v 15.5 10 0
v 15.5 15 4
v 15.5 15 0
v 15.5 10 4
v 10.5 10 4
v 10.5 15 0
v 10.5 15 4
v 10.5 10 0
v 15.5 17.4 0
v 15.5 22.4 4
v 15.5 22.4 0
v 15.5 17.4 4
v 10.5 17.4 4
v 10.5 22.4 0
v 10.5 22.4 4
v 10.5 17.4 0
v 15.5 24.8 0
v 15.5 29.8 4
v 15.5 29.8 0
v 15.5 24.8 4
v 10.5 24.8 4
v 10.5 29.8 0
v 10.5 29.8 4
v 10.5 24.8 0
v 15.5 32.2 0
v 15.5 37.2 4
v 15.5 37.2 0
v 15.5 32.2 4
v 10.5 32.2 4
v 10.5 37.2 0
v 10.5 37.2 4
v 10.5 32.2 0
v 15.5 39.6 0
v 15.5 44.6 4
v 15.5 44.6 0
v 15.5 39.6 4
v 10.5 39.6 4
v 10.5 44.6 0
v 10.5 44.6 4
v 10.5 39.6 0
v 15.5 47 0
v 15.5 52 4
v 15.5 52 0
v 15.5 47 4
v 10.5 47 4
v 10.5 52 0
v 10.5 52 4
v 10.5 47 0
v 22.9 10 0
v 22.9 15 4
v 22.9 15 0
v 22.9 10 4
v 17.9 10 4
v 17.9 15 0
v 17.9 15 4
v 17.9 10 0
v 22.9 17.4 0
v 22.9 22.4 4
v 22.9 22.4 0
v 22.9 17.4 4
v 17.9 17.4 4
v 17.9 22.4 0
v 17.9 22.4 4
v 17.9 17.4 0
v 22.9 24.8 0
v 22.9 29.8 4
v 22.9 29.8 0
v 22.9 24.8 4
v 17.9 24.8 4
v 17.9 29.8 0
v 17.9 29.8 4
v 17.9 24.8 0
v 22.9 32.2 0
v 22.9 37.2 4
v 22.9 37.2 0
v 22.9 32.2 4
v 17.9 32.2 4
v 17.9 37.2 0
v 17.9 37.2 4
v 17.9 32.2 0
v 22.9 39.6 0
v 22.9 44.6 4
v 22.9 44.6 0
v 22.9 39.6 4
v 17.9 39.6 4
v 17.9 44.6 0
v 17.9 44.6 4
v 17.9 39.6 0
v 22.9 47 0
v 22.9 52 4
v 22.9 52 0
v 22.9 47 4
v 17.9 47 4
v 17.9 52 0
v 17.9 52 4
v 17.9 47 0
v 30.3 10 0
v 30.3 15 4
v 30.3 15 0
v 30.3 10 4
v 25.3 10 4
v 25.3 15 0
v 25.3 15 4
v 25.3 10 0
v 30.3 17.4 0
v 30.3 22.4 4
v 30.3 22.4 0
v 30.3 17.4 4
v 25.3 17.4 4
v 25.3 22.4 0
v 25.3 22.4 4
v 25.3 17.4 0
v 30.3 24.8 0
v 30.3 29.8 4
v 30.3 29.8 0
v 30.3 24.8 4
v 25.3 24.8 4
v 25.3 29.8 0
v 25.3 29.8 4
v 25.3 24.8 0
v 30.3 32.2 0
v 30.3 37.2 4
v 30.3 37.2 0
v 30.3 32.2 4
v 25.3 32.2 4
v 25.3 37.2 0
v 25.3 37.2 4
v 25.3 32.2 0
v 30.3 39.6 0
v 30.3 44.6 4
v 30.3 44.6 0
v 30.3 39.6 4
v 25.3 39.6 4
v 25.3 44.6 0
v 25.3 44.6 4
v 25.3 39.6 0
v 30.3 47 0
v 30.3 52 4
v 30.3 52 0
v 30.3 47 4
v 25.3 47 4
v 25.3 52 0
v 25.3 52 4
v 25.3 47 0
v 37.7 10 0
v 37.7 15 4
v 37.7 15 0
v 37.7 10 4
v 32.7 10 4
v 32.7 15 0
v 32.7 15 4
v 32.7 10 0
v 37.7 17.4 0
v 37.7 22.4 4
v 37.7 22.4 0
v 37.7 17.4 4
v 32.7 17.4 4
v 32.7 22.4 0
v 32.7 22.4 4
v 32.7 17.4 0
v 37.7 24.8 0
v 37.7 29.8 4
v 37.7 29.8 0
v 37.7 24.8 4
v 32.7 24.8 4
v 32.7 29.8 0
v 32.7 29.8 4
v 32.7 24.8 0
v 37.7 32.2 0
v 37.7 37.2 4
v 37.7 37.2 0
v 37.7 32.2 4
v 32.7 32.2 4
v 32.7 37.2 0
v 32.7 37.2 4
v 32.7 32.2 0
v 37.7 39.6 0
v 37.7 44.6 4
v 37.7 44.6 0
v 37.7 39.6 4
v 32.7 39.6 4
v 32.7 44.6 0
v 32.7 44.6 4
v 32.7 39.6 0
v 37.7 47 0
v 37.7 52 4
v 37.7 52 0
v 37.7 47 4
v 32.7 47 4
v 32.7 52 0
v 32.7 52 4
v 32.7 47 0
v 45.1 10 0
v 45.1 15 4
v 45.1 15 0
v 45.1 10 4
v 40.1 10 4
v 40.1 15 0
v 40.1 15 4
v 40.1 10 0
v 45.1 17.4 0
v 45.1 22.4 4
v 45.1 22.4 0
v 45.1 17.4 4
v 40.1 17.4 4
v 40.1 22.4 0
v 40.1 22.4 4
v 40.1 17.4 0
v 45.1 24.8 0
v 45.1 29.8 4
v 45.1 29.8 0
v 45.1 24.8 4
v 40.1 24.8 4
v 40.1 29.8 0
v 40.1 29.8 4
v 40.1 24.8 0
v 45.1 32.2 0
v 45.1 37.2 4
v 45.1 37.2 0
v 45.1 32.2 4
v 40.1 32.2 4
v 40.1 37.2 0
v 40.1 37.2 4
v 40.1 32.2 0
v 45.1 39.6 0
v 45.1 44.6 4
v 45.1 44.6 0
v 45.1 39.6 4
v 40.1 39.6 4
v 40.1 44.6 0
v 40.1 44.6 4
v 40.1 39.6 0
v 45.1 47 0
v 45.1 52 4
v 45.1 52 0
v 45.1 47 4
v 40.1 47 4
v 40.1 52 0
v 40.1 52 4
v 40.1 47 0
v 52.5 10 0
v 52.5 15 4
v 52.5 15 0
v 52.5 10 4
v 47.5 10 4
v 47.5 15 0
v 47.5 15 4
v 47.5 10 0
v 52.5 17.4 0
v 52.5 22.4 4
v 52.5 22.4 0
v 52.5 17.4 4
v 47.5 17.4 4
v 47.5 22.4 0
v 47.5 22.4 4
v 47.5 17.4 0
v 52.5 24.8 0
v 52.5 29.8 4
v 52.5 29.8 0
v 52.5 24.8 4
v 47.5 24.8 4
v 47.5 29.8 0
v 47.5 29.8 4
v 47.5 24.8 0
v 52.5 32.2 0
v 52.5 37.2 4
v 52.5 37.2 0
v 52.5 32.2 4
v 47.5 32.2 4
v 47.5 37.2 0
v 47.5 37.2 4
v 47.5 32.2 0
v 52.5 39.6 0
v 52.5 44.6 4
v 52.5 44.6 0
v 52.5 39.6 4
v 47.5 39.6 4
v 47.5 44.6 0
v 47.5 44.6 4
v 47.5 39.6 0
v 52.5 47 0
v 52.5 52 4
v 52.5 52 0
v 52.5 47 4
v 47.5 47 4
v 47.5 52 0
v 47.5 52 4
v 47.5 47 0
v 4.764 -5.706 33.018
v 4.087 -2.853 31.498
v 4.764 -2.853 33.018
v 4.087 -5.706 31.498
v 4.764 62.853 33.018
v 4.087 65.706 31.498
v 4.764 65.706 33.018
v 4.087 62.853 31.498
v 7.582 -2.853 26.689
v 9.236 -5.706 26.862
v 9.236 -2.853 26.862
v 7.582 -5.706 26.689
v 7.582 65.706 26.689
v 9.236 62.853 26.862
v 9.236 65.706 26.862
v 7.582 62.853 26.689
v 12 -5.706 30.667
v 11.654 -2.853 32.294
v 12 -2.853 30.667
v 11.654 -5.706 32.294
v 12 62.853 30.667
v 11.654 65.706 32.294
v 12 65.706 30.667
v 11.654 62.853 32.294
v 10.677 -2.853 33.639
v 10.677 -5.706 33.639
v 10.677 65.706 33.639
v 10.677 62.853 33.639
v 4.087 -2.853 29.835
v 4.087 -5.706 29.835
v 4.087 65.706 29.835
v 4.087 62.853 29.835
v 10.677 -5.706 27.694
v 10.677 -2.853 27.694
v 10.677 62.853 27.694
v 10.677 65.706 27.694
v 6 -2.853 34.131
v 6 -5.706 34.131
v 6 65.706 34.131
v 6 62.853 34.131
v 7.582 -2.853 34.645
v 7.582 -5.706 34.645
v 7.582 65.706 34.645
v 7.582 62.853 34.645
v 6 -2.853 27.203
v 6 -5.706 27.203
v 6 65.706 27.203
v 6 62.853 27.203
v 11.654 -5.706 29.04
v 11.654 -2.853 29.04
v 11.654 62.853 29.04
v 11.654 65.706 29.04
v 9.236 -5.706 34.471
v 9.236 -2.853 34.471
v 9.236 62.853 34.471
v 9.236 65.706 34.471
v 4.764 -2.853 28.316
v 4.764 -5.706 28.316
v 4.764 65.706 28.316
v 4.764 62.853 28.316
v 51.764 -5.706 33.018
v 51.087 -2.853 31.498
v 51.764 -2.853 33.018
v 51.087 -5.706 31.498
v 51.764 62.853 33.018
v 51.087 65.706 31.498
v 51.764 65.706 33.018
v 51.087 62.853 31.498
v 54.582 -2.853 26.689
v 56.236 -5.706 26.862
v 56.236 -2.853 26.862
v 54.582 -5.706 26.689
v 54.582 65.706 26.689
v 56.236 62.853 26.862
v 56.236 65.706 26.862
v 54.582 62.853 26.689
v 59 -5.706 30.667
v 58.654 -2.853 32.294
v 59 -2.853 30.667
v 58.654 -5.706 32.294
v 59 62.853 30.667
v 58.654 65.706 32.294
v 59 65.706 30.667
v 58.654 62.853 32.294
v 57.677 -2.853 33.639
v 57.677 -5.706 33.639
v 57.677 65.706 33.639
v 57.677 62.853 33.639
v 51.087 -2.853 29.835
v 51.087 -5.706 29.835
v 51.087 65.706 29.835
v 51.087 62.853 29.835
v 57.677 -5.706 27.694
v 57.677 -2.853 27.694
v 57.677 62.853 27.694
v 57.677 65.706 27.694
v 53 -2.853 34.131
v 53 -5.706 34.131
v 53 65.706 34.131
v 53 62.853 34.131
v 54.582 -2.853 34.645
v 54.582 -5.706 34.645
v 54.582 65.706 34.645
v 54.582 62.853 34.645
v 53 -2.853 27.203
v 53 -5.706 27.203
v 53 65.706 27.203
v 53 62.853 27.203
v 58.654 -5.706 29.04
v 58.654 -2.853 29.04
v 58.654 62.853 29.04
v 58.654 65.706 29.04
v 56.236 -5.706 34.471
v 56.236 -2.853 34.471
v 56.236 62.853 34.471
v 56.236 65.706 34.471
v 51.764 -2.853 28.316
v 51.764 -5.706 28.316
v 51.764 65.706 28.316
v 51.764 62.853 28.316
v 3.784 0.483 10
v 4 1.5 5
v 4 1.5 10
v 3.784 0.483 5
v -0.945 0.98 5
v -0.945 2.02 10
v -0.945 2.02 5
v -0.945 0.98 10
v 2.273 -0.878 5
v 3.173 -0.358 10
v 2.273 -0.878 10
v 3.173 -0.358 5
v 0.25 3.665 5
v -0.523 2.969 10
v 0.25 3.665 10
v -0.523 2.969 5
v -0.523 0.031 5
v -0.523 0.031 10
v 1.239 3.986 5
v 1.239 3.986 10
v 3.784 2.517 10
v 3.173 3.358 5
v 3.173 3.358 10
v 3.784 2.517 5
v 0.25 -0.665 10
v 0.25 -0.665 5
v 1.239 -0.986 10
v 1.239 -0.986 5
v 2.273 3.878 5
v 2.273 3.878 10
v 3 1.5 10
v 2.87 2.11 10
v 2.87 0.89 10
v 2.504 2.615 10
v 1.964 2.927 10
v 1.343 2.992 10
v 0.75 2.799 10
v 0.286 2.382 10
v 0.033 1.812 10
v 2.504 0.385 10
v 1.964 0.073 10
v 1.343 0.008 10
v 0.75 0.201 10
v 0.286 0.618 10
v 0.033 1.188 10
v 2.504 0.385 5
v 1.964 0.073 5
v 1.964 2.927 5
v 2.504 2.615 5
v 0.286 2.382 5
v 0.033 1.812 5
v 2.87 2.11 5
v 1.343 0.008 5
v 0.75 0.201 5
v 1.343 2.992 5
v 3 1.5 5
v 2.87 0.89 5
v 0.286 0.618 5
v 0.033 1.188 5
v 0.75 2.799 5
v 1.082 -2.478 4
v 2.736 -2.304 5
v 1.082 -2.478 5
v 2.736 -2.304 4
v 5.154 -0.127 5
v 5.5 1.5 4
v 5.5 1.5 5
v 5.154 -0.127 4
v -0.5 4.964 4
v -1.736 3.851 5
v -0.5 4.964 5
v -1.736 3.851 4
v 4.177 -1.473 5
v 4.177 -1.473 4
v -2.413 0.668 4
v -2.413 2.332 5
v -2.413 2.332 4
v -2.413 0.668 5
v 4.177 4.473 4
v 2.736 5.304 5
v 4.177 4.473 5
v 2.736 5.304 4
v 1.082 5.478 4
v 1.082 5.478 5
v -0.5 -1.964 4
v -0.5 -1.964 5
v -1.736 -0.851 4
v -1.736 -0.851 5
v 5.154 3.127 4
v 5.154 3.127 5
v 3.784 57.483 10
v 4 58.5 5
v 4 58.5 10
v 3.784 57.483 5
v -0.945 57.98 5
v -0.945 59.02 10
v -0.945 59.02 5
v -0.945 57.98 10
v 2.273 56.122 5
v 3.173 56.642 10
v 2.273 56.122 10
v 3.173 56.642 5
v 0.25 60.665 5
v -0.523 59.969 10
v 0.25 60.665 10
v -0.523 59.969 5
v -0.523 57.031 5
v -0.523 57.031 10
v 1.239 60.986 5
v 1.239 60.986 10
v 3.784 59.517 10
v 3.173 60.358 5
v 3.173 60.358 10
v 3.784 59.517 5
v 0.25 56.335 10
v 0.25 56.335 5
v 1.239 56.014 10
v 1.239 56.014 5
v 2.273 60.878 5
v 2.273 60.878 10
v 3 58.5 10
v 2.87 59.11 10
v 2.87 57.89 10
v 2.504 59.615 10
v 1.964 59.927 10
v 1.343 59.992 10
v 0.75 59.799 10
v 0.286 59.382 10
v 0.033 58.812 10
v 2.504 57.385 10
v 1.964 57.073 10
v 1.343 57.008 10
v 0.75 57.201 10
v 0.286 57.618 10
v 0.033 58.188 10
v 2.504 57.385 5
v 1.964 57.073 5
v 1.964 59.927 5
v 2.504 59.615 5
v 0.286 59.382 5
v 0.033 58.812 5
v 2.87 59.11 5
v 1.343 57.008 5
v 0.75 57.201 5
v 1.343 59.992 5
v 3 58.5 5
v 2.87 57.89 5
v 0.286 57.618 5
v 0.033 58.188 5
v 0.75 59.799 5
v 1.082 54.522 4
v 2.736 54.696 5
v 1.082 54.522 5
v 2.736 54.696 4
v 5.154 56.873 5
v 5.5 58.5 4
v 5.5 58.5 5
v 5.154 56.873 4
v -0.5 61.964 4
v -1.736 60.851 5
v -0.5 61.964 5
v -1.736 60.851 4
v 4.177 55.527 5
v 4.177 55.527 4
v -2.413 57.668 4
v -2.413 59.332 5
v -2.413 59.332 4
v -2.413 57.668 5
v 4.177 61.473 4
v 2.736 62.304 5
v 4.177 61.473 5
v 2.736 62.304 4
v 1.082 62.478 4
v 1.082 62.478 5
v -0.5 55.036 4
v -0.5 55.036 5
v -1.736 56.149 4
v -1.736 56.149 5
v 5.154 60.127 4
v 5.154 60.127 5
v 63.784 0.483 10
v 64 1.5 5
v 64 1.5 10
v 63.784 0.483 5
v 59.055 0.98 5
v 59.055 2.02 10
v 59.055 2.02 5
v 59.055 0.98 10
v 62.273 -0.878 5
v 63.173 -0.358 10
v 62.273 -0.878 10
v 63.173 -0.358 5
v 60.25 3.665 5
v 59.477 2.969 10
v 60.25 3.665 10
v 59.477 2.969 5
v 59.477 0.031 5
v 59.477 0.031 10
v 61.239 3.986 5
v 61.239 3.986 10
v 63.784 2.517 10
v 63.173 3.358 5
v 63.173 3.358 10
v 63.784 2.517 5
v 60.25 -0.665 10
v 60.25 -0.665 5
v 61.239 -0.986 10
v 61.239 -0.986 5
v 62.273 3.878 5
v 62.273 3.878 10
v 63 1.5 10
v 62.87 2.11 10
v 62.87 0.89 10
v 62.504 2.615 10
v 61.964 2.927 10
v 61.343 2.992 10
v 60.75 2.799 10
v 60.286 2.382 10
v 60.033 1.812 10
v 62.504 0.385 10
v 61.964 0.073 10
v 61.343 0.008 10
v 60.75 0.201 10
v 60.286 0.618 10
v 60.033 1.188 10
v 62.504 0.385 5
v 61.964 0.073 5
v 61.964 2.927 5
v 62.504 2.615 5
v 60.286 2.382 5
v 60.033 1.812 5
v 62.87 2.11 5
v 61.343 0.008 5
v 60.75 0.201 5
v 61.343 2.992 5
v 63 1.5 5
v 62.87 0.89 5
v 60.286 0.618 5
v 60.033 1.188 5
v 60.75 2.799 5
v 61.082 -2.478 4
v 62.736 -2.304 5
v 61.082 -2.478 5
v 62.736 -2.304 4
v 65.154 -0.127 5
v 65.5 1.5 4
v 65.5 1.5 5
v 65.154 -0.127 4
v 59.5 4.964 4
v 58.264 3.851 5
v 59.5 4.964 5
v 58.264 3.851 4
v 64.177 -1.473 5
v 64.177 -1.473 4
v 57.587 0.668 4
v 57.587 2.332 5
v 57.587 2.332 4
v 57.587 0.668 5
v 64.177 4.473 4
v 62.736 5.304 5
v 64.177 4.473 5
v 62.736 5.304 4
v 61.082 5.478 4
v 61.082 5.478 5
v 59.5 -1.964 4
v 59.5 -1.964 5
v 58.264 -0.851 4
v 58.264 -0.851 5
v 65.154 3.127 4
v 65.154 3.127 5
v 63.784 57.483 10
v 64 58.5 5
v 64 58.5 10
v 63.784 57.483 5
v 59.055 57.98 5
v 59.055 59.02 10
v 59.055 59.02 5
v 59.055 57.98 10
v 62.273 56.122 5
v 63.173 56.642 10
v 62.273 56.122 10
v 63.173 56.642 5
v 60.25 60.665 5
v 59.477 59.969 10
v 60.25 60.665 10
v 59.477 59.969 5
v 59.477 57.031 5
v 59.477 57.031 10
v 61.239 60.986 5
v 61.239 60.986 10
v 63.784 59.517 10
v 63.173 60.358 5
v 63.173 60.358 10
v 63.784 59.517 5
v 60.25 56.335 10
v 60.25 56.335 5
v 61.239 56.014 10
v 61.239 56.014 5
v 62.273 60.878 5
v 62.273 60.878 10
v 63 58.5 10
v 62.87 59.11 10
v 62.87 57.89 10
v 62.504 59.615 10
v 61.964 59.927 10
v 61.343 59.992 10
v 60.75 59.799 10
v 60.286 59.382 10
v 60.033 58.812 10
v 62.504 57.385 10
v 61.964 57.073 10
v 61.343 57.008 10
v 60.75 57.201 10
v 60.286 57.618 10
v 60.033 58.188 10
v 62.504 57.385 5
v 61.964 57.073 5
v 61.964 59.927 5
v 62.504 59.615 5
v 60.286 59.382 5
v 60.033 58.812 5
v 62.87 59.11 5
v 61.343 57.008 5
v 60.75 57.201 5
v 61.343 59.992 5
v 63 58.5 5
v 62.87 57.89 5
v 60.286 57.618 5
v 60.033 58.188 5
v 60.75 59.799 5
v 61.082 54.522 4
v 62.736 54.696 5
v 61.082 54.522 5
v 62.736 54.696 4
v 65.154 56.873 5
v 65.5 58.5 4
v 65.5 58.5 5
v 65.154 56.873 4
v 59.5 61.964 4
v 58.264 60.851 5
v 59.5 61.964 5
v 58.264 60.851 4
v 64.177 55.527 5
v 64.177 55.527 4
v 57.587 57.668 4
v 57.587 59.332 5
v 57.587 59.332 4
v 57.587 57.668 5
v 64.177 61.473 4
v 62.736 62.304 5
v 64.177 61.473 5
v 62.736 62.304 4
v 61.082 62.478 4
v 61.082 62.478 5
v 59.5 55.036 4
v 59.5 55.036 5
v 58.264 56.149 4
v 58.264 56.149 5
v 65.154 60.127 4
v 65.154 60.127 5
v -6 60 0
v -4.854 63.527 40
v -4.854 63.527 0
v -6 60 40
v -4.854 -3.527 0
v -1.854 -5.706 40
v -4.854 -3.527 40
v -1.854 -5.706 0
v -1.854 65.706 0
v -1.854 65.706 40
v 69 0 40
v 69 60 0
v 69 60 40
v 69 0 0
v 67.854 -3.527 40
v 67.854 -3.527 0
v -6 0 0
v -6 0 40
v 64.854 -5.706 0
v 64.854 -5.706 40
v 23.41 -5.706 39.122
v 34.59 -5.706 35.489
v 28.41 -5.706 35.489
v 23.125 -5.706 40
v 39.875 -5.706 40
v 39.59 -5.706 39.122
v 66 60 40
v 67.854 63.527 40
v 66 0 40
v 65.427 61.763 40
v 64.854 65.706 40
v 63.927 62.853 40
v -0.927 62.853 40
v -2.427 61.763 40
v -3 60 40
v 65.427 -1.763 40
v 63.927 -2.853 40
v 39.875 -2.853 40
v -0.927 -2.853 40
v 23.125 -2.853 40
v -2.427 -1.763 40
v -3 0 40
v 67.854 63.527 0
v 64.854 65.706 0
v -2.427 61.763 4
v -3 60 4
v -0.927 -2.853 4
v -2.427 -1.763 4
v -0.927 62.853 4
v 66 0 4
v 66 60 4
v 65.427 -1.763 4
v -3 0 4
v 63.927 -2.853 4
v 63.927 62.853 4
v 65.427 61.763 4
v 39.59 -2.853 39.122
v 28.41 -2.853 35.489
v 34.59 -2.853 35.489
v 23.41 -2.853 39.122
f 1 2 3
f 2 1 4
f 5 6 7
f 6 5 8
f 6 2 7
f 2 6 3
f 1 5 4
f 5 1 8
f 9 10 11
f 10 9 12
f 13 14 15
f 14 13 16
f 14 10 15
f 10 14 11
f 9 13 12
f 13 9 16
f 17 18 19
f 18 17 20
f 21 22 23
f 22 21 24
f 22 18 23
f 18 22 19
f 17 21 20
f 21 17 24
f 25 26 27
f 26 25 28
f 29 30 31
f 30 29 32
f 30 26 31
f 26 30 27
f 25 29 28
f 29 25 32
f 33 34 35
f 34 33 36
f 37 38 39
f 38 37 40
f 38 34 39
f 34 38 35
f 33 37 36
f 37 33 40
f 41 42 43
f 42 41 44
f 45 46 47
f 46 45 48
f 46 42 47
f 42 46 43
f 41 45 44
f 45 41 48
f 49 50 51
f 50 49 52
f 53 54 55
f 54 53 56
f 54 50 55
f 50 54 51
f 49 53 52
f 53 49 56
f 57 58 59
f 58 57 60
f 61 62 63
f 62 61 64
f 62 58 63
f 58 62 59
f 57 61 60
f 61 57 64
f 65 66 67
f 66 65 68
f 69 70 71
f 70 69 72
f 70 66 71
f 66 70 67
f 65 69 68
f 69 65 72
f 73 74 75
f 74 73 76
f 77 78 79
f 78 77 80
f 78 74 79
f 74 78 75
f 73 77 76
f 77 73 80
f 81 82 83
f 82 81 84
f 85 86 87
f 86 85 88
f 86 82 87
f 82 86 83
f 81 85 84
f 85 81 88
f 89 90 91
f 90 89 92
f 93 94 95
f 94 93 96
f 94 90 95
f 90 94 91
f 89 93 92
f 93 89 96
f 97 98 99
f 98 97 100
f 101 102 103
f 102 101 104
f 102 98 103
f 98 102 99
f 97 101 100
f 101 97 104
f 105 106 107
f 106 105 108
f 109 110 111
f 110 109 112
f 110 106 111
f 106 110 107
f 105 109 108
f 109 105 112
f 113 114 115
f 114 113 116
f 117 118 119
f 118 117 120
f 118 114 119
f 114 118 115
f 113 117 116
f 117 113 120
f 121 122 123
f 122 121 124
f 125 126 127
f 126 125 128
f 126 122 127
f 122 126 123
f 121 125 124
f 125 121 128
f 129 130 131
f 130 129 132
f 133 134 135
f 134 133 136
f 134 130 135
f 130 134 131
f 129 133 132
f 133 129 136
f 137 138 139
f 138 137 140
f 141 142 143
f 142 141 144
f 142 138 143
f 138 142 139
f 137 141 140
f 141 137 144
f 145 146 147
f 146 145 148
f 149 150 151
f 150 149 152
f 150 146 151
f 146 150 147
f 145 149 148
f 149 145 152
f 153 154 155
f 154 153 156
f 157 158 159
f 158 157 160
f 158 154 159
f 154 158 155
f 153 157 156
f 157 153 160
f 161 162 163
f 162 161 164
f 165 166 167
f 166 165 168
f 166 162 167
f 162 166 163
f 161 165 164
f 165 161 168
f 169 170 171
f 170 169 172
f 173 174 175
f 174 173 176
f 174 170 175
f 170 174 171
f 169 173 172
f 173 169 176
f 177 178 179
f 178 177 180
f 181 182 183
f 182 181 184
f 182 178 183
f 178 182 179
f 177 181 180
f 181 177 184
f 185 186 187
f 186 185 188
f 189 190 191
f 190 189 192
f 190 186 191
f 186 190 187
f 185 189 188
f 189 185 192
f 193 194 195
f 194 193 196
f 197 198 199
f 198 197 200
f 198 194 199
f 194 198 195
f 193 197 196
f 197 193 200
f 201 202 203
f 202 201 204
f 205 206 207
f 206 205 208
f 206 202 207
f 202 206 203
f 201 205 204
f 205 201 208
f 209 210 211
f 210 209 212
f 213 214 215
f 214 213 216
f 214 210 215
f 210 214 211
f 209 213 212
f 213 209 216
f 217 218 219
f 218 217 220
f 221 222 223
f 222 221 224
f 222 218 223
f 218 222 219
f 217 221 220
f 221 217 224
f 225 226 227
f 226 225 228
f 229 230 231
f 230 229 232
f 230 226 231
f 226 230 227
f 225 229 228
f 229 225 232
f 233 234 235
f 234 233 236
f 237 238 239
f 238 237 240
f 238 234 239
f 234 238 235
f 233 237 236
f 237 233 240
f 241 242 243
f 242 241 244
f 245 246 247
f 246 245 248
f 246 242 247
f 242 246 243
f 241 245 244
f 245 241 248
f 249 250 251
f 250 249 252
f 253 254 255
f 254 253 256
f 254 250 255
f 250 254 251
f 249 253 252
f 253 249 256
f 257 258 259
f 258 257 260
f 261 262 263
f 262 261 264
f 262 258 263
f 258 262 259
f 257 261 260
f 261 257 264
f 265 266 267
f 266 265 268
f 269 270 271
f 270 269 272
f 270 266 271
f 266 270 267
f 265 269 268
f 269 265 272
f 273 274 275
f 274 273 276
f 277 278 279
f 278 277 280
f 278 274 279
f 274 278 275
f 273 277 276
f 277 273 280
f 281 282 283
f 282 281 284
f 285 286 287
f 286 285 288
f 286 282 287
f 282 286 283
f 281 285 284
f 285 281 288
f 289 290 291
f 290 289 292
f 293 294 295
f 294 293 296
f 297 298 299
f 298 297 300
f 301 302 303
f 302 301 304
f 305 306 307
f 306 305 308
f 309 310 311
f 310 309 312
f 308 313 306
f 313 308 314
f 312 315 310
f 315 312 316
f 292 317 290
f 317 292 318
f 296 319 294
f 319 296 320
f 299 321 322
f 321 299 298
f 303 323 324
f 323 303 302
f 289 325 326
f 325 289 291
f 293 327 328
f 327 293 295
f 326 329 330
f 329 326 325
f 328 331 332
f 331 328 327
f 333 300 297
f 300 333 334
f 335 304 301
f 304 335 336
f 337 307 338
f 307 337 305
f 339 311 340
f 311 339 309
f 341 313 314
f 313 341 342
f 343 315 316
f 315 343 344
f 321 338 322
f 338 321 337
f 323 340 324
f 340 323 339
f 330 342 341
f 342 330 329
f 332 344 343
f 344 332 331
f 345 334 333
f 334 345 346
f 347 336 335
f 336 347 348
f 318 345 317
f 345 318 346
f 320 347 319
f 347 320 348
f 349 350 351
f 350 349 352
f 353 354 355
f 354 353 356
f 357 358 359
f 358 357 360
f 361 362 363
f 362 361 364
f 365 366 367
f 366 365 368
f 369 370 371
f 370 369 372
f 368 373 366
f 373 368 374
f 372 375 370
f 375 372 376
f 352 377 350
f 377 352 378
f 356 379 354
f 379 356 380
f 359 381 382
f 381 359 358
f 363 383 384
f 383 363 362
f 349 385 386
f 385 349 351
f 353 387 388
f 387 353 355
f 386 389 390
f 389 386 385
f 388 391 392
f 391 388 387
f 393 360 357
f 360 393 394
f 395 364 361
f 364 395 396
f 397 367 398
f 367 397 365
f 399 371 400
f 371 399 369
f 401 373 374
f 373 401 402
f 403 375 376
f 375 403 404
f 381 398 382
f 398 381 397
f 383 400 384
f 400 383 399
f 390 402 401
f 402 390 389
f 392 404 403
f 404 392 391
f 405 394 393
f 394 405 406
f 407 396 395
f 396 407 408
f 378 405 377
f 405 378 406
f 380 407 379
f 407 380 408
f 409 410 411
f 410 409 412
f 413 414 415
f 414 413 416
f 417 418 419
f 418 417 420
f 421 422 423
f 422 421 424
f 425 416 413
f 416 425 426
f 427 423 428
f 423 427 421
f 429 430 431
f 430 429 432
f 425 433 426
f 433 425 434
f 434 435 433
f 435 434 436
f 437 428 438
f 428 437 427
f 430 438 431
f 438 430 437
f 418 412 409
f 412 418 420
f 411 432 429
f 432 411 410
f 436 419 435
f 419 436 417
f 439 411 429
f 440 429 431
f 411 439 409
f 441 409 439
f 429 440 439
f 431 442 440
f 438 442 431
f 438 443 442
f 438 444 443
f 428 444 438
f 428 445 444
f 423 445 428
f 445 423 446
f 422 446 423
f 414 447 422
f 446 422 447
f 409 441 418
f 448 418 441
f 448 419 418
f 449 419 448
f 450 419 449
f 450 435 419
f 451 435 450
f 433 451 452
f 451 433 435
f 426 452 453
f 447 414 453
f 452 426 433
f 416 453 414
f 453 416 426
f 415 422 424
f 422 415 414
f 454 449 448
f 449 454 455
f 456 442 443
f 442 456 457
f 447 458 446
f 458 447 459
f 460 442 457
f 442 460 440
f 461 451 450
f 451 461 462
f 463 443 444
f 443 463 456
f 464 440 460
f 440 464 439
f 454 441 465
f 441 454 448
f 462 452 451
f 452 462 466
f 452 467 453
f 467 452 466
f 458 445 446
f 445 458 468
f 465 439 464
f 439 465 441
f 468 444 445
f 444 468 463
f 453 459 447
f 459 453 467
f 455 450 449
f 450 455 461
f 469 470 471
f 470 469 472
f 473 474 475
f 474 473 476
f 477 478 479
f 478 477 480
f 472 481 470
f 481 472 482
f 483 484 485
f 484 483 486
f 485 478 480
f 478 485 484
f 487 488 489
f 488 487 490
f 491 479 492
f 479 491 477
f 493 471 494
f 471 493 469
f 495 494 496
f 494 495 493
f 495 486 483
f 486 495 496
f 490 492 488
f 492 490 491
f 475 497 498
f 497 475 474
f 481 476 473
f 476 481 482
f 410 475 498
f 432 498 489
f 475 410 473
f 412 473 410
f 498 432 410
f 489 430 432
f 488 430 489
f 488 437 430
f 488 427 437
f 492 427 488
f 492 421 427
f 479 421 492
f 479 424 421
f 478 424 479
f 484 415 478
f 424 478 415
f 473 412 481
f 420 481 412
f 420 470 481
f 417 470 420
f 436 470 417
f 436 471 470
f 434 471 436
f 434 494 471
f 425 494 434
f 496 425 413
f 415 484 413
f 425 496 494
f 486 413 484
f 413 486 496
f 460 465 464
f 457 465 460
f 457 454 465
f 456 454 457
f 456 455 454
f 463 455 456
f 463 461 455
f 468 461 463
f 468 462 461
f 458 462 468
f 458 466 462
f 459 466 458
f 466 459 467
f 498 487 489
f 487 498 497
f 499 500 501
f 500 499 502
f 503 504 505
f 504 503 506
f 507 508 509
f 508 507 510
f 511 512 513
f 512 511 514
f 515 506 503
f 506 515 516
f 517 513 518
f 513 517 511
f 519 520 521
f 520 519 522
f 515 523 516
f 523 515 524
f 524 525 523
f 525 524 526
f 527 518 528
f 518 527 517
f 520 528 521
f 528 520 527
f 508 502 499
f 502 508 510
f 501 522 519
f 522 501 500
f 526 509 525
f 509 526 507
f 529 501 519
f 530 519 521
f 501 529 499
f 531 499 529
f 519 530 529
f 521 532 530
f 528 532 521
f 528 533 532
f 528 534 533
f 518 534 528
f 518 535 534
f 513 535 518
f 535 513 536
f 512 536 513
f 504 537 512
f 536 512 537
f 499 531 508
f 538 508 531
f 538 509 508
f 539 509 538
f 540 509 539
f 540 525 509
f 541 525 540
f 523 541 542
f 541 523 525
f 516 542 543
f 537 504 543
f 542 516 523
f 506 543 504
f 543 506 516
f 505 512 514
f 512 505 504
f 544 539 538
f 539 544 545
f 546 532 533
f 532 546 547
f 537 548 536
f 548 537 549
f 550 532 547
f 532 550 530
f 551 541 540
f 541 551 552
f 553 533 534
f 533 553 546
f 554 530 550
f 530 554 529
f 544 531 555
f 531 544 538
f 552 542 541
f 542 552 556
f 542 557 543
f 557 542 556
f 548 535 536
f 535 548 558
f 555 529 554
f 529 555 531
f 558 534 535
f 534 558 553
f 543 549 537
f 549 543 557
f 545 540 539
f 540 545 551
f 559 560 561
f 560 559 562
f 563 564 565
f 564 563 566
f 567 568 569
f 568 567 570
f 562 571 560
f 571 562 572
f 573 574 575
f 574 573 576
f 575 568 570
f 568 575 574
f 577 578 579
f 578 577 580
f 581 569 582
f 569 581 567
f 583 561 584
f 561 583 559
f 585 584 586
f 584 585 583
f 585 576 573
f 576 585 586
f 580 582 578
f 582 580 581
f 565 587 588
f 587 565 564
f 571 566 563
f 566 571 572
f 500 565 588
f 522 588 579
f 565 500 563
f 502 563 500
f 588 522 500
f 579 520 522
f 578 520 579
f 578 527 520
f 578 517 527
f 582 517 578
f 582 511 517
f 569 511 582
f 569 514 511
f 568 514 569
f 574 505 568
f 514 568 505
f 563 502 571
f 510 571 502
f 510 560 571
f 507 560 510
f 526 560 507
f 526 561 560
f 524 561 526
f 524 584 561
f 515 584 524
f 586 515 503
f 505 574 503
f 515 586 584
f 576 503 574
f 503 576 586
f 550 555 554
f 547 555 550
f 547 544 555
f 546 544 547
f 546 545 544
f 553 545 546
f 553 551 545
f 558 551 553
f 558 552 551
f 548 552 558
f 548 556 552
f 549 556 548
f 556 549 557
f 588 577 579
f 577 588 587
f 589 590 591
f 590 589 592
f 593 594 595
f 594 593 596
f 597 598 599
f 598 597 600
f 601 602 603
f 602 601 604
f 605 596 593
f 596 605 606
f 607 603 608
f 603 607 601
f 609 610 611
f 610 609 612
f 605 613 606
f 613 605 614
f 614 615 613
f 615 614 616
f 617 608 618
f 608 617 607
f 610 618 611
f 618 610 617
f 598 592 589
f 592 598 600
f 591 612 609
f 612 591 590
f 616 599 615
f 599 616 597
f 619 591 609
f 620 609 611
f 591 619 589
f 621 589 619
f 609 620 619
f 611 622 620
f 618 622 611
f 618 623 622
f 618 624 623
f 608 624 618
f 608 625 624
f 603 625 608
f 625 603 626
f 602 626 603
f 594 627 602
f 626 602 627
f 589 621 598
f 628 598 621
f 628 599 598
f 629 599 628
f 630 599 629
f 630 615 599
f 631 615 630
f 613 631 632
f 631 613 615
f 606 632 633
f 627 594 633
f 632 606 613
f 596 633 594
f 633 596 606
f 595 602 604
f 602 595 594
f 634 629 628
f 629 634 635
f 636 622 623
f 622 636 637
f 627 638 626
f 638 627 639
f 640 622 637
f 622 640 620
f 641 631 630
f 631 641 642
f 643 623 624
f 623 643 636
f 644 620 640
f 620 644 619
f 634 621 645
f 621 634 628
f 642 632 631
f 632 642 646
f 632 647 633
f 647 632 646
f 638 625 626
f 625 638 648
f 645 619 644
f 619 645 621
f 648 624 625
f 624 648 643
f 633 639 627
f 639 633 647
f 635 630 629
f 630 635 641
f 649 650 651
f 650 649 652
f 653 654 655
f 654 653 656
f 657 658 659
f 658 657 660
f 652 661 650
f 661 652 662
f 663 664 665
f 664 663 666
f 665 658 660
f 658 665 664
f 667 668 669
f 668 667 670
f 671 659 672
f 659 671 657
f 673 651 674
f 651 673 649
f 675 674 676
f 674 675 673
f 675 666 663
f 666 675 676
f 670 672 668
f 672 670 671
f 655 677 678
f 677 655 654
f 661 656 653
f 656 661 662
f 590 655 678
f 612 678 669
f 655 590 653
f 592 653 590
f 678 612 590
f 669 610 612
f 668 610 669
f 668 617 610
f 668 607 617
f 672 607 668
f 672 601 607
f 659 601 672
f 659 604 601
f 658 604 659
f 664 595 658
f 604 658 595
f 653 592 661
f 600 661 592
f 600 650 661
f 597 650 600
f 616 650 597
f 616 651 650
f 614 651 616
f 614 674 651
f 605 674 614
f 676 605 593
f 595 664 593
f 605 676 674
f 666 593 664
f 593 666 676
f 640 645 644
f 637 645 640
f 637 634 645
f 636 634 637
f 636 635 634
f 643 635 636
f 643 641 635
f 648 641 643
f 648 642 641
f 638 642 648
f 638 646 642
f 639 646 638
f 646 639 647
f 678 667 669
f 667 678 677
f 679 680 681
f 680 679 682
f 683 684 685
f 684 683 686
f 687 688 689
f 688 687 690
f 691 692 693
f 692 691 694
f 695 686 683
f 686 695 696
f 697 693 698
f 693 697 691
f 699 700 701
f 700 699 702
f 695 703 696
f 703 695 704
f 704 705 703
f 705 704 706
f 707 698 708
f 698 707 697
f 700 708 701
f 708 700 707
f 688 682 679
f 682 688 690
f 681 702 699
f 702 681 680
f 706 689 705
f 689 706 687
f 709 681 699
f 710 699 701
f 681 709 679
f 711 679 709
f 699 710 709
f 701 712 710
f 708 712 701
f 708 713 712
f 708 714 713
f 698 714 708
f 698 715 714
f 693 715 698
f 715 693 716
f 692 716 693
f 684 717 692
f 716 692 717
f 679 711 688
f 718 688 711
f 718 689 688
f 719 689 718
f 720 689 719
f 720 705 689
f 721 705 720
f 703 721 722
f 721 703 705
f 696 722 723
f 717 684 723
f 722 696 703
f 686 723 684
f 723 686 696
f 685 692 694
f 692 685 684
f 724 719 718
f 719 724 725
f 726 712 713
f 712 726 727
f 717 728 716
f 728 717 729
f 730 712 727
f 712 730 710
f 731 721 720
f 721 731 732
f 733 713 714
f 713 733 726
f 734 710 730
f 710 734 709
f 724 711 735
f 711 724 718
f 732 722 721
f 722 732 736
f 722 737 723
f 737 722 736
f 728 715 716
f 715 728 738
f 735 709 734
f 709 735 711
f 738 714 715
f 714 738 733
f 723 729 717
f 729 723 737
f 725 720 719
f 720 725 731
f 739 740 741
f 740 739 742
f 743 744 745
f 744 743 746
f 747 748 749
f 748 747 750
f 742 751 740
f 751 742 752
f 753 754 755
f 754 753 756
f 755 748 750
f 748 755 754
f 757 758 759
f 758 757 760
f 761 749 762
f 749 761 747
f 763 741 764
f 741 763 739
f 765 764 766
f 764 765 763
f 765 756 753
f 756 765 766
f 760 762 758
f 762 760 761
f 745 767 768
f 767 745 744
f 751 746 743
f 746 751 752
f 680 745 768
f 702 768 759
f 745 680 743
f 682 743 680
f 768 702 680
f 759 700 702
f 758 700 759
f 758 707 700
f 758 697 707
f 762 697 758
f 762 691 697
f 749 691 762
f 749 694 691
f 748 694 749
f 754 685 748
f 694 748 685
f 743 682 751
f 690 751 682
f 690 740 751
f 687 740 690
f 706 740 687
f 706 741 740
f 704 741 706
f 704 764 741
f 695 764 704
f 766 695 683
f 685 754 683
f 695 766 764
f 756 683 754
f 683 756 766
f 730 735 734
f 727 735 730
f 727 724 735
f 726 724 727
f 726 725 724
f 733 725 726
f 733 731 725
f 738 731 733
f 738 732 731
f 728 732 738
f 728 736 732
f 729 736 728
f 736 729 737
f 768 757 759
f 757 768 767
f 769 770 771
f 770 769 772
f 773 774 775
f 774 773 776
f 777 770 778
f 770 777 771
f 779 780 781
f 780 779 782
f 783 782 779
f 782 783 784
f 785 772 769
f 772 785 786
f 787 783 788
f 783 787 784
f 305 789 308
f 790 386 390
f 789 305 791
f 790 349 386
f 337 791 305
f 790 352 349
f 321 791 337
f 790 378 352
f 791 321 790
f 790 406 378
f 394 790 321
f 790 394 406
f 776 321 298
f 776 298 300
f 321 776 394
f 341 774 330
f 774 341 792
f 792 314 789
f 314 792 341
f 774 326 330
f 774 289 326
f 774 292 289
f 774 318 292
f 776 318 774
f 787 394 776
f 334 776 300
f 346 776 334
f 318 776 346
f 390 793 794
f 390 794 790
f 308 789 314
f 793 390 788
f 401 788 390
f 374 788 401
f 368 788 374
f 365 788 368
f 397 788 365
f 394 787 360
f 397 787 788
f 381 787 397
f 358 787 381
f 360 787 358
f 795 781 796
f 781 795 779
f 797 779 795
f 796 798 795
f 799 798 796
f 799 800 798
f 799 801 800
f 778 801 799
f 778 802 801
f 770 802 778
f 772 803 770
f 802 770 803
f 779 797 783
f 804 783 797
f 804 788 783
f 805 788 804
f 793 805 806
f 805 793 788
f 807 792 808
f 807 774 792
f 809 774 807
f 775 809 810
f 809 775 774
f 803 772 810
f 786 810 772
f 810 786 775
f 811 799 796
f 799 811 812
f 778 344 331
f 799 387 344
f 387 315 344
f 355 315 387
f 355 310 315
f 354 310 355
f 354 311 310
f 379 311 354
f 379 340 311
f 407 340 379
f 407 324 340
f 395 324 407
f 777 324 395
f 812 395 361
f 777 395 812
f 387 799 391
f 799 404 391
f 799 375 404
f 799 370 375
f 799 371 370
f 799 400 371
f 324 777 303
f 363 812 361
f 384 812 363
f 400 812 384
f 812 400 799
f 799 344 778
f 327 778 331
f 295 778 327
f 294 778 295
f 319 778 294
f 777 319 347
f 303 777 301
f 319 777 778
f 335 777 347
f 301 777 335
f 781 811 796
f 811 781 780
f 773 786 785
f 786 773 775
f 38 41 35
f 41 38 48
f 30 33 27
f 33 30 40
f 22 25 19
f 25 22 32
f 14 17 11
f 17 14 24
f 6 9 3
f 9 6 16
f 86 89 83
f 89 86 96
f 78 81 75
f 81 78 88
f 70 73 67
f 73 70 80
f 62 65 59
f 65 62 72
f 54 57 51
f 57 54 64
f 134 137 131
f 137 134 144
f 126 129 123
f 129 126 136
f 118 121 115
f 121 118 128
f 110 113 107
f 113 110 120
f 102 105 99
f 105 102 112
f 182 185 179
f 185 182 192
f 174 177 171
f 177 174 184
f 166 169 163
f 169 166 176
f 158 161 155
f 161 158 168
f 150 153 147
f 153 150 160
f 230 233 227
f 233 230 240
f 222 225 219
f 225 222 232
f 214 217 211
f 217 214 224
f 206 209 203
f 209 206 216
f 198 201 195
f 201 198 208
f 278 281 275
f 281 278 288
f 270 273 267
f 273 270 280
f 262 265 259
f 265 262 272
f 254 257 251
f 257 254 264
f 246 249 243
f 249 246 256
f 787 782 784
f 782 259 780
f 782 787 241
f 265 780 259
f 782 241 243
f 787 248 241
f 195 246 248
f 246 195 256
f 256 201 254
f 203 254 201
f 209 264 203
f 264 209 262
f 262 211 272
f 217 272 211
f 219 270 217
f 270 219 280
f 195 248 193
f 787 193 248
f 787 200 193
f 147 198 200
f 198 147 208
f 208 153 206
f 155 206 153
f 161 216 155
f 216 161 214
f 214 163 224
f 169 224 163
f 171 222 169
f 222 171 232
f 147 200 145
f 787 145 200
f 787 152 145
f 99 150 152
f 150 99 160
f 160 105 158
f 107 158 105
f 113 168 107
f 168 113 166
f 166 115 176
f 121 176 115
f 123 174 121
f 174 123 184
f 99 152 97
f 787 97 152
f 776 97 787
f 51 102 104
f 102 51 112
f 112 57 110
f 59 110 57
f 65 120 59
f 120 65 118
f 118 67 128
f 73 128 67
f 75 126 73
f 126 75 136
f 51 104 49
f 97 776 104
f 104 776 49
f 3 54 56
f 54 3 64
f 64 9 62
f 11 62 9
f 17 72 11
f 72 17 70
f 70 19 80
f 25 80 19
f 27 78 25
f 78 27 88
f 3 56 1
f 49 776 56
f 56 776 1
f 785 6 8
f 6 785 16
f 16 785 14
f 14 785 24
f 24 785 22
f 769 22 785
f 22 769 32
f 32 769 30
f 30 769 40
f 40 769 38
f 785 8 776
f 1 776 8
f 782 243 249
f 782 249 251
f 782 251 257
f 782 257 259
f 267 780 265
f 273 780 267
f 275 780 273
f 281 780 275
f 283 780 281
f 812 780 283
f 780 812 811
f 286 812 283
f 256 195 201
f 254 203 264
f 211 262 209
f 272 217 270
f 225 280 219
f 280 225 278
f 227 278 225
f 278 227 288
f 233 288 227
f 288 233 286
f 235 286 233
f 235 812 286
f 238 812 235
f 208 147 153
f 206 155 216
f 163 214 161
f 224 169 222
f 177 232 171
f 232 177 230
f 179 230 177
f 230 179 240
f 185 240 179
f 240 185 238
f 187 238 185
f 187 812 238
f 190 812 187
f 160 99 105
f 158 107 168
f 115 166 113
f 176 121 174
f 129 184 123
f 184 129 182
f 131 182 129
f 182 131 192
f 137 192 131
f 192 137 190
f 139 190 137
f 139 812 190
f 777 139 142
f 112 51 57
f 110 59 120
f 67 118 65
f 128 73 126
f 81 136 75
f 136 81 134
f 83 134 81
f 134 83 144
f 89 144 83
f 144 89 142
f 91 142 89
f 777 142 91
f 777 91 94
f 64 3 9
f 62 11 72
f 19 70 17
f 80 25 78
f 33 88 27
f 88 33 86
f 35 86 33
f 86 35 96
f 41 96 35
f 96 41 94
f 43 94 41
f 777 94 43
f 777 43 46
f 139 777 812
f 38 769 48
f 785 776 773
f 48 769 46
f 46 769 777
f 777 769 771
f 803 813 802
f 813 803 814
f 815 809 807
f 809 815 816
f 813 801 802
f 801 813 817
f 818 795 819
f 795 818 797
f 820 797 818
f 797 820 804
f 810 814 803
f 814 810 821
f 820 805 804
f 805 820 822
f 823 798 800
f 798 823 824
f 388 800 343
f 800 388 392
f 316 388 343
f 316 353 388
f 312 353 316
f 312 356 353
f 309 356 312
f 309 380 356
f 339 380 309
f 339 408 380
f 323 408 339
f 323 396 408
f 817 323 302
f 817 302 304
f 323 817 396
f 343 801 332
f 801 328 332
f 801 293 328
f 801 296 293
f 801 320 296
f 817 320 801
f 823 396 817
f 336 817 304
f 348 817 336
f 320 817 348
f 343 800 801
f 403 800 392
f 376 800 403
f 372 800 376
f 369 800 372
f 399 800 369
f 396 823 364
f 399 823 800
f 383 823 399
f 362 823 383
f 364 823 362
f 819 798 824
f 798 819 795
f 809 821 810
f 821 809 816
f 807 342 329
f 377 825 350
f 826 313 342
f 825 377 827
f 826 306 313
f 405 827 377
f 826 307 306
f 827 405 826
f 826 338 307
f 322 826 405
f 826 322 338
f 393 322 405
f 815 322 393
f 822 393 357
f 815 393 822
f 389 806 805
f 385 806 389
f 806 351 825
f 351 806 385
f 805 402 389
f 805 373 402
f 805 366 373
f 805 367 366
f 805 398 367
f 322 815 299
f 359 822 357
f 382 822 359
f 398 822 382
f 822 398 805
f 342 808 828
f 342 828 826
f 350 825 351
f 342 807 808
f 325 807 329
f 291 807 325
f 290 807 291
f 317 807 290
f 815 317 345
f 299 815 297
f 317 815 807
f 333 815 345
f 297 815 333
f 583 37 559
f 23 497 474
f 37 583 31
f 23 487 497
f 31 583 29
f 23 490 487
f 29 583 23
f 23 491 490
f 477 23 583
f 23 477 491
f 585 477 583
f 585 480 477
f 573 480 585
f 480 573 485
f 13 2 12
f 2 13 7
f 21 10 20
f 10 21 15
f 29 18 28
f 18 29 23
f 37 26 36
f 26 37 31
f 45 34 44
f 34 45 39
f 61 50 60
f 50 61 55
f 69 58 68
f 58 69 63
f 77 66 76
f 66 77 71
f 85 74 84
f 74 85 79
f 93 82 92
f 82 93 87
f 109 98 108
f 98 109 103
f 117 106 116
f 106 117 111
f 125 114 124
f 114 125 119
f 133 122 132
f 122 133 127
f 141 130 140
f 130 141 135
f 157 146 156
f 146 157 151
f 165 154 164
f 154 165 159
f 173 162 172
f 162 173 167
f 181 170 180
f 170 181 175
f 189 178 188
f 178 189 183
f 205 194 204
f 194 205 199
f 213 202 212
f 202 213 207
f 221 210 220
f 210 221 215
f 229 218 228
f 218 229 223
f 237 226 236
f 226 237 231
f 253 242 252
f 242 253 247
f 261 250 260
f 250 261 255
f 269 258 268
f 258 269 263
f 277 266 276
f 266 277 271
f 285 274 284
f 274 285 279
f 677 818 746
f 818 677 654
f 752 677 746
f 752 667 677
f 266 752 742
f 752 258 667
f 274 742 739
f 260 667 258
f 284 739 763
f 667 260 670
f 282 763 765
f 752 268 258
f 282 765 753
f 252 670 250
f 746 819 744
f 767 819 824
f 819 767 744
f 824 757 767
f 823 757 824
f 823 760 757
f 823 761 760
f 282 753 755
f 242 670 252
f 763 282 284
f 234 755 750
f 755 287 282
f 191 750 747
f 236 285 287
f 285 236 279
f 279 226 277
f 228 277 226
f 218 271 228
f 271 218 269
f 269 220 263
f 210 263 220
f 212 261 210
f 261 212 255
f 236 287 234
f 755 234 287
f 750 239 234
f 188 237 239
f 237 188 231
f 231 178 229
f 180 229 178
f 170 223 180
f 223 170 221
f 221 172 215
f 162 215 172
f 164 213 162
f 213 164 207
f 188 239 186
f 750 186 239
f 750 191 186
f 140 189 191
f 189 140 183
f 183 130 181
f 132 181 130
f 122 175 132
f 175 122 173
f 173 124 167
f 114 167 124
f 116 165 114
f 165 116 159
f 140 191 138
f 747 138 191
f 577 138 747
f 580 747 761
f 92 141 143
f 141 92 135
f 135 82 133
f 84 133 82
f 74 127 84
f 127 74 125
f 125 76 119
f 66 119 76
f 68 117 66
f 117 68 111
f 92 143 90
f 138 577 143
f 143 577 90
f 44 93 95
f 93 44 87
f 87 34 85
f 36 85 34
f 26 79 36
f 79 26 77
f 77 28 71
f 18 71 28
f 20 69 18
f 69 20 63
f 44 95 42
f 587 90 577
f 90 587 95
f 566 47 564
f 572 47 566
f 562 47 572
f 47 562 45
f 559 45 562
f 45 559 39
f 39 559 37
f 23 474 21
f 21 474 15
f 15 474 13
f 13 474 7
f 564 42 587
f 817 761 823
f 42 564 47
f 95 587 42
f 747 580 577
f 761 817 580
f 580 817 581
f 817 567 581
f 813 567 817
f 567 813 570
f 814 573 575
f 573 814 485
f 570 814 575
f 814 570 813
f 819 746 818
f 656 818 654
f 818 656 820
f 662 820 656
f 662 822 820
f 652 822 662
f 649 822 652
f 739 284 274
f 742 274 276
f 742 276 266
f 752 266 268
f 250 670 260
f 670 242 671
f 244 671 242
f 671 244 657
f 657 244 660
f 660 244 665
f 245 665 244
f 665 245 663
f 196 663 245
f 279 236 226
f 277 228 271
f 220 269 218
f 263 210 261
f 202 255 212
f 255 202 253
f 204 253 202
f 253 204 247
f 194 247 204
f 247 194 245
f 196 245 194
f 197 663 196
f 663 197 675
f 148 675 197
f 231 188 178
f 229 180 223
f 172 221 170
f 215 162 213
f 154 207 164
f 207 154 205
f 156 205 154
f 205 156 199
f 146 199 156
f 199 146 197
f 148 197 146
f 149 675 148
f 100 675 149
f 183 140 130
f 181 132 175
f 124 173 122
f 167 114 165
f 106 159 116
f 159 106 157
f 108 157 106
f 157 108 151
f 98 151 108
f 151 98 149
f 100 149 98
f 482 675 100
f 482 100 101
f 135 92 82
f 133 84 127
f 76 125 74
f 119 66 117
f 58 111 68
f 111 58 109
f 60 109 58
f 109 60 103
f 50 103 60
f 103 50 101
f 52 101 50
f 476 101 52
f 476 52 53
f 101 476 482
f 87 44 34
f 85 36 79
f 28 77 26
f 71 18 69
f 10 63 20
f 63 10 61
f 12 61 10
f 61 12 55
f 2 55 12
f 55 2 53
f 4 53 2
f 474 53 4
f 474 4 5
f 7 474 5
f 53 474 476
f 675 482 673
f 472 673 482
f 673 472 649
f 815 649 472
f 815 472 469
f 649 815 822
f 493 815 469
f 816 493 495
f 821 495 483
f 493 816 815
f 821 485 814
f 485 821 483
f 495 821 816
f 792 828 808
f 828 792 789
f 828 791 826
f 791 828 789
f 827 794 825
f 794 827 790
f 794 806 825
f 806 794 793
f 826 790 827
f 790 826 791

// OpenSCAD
$fn=10;

pin_widths=63;
pin_depth=60;
base_thickness = 4;
pin_height = 6;
pin_d_base = 5;
pin_d = 3;
case_height = 40;
power_opening = 8;

module pegs() {
    module peg() {
        translate([pin_d/2, pin_d/2, base_thickness]) {
            linear_extrude(height = 2, center=true) circle(d=pin_d_base + 3, $fn=15);

            difference() {
                linear_extrude(height = pin_height) circle(d=pin_d_base, $fn=15);            linear_extrude(height = 20, center=true) circle(d=pin_d, $fn=15);
            }
        }
    }

    peg();
    translate([0,pin_depth - pin_d,0]) peg();
    translate([pin_widths - pin_d,0,0]) peg();
    translate([pin_widths - pin_d,pin_depth - pin_d,0]) peg();

}

module air_holes() {
    cube_size=5;
    count = 5;
    width = pin_widths * (2/3);
    offset = (width - cube_size) / count;

    translate([pin_widths * 1/6, pin_depth * 1/6,0]) {
        for (x=[0:count]) {
            for (y=[0:count]) {
                translate([offset * x, offset * y, -10]) cube([cube_size,cube_size,100]);
            }
        }
    }
}

module shell() {
    linear_extrude(height=case_height) 
    minkowski() {
        square([pin_widths, pin_depth]);
        circle(6);
    }
}

module inset() {
    translate([0,0,base_thickness])
    linear_extrude(height=case_height) 
    minkowski() {
        square([pin_widths, pin_depth]);
        circle(3);
    }
}

module power_hole(diameter=8) {
    $fn=15;
    height = 100;
    
    rotate([90,0,0]) translate([diameter, (case_height * 2/3) + 4,-(height - 10)]) cylinder(h=height,d=diameter);
   
    rotate([90,0,0]) translate([pin_widths - diameter, (case_height * 2/3) + 4,-(height - 10)]) cylinder(h=height,d=diameter);
}

module case(with_top_notch=true) {
    difference() {
        shell();
        inset();
        air_holes();
        power_hole(diameter=8);
        if (with_top_notch) {
            translate([pin_widths/2,0,45]) rotate([90,0,0]) cylinder(h=10,d=20);
        }
    }
    pegs();
}

case(with_top_notch=true);

echo(version=version());
